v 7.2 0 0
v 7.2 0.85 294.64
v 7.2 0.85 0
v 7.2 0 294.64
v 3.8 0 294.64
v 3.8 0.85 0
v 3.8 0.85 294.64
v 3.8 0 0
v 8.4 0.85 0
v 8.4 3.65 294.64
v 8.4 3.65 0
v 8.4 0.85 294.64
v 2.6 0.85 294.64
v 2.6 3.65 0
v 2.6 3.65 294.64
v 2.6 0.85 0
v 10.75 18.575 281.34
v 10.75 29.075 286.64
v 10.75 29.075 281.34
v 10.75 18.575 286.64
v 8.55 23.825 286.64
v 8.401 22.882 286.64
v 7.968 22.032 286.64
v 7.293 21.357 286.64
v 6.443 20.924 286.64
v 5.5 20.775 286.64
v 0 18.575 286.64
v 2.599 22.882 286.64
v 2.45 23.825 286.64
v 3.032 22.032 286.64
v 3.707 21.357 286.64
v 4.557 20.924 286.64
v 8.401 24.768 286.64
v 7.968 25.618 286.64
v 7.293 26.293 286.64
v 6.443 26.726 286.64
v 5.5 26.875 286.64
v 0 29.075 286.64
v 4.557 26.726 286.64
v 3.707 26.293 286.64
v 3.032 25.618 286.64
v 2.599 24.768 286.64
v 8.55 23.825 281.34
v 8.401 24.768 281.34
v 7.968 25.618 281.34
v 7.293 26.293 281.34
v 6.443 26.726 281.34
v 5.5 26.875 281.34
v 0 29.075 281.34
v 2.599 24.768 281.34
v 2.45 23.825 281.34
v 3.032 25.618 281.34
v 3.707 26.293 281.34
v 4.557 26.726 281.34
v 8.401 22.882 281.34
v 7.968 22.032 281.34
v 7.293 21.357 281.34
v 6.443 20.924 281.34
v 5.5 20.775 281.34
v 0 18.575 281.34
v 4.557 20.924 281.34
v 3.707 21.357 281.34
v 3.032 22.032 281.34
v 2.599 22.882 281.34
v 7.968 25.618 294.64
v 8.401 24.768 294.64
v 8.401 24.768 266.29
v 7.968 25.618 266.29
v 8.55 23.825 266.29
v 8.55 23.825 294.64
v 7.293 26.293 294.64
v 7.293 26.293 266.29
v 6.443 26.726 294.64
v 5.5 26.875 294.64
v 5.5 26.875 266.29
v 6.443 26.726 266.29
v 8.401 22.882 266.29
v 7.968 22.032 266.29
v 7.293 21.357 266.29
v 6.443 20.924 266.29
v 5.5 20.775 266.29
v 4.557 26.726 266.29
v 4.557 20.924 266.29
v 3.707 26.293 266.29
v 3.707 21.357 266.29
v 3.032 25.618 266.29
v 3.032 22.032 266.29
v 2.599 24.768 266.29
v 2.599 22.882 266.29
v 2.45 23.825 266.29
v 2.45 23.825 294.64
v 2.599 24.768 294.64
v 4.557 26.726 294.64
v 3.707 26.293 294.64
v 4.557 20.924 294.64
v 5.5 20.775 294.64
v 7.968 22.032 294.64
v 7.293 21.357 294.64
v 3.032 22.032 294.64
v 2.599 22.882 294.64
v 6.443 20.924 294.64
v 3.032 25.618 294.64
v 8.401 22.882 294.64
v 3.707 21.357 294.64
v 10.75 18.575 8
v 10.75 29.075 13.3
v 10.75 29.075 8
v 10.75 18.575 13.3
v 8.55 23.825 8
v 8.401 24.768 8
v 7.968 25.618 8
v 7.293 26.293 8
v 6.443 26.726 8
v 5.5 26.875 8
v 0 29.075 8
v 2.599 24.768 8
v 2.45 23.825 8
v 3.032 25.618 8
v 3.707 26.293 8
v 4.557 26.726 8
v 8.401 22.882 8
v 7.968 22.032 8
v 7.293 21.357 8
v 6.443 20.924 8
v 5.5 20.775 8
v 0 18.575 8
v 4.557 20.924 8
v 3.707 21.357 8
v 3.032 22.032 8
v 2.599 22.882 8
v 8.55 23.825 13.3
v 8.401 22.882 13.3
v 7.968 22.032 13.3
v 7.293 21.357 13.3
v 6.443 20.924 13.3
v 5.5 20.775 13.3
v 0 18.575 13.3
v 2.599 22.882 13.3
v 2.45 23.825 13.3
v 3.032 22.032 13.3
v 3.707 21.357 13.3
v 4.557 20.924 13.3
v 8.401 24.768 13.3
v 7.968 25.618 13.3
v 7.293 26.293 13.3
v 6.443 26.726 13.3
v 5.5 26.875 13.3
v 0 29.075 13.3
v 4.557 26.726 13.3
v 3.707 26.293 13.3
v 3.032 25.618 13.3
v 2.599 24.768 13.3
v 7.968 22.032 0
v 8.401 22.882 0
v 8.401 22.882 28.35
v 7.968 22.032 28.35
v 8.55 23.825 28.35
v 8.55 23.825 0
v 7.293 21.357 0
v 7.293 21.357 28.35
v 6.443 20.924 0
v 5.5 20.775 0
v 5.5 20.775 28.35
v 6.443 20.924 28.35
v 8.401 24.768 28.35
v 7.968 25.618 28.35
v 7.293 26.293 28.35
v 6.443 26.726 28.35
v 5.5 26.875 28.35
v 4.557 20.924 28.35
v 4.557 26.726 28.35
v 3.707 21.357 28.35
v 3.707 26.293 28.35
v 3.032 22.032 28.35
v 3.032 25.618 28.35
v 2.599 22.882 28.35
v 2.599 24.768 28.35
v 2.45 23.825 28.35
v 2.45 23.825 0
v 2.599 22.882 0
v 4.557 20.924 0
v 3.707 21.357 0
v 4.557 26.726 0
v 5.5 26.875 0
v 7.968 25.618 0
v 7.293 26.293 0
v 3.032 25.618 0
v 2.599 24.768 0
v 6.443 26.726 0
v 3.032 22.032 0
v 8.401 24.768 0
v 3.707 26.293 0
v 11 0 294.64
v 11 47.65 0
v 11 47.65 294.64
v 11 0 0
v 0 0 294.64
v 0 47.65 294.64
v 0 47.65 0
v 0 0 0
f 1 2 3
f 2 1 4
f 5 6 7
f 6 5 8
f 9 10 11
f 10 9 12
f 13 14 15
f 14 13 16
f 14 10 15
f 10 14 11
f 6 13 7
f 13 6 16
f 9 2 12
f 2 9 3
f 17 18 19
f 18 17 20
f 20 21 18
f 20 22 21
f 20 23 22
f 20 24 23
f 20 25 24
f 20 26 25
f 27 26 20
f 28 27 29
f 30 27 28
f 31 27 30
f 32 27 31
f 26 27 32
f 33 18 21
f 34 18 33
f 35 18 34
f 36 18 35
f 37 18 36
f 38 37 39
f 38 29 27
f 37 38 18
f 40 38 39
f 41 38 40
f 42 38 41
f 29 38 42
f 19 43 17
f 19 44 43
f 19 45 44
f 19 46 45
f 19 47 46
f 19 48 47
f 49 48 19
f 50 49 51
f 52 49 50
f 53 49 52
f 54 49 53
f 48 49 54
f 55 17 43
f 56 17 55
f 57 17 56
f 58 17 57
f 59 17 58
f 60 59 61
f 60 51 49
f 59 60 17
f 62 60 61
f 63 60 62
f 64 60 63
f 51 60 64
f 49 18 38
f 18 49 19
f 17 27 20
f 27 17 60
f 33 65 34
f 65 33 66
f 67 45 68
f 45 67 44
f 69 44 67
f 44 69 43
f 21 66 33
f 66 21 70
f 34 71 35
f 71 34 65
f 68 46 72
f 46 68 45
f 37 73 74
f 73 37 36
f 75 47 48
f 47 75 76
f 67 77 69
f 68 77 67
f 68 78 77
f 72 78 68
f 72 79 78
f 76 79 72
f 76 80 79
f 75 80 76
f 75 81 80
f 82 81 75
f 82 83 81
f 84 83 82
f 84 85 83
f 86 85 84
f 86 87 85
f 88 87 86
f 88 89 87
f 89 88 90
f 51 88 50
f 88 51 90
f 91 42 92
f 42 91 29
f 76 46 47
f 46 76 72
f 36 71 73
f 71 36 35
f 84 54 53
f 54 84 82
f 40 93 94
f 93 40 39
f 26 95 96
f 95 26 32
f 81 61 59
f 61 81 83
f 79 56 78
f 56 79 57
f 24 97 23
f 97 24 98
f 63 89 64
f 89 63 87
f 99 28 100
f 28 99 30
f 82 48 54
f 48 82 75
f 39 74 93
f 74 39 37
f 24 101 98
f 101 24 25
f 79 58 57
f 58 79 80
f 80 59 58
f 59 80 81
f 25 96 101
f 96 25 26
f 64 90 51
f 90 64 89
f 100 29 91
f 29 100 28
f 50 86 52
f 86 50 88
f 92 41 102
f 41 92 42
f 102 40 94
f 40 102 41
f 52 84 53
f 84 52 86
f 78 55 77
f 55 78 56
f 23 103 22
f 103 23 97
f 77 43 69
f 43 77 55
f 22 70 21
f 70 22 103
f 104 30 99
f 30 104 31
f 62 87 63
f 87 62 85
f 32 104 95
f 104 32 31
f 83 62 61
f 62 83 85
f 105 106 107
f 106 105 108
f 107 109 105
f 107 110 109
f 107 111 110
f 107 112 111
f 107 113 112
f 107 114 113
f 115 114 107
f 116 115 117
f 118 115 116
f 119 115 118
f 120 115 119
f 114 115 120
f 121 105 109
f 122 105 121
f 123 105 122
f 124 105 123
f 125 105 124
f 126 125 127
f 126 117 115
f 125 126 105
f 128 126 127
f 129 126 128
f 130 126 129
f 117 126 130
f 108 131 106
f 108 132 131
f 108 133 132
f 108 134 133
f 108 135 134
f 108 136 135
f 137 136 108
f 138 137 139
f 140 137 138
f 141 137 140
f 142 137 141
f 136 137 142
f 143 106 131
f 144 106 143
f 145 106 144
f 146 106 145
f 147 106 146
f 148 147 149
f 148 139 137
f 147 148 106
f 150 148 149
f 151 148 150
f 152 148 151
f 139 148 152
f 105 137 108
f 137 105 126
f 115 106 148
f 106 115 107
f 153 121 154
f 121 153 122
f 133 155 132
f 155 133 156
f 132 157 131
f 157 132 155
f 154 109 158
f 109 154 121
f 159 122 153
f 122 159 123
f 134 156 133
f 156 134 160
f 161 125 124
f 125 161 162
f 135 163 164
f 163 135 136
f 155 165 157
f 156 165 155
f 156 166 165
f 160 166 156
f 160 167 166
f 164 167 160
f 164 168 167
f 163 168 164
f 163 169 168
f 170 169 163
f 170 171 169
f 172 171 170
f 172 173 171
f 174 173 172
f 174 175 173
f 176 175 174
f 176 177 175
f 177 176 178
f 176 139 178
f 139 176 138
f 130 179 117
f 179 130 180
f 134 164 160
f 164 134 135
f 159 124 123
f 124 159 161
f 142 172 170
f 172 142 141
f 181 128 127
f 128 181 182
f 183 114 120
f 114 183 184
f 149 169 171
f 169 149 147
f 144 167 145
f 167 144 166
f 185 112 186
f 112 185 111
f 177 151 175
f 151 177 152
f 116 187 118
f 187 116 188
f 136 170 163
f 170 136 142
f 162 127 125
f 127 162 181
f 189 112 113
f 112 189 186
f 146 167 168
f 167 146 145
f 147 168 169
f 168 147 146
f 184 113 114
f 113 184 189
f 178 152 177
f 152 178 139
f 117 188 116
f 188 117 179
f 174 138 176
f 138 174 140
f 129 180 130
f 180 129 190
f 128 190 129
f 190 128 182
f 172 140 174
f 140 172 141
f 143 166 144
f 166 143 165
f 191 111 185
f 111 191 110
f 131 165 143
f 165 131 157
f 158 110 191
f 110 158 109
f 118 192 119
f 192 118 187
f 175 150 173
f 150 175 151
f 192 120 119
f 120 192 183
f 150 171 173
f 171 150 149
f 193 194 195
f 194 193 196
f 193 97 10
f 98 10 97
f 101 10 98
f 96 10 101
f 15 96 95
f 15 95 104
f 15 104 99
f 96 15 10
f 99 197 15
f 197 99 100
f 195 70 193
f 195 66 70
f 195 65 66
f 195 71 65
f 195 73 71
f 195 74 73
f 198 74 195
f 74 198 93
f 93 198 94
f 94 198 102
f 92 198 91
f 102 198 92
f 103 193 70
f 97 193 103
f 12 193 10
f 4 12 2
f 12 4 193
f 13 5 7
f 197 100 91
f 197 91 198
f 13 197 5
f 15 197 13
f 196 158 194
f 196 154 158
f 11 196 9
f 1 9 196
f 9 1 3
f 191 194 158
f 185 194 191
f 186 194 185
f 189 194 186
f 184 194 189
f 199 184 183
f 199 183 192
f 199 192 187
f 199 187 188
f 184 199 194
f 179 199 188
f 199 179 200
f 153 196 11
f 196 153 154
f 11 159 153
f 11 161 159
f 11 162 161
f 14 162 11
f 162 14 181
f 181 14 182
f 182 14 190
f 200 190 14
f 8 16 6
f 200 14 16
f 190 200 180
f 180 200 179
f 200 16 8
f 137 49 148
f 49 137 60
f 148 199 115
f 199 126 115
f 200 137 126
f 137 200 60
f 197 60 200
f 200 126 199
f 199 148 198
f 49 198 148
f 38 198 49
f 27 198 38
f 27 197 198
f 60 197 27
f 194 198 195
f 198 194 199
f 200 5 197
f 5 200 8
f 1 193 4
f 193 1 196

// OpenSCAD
railHp = 58;//the length of a rail in hp
hp = 5.08;//represents of the width in mm of each unit of hp; defaults to Eurorack standard (5.08)

slidingNutHeight = 5.4; //the height of the nut; defaults to the height of a common m3 square nut (5.4)

slidingNutThickness = 2.4; //The thickness/depth of the nut, back to front; defaults to the size of a common m3 square nut (2.4)

slidingNutMargin = .2;//margin added to the thickness of the nut for fit tolerance

railGapHeight = 3.4;//The gap in the rail through which the nuts are visible

railFrontThickness = 2.25; //The thickness of the part of the rail between the front of the rail and the nuts

railBackThickness = 45;//The thickness of the rail "behind" the nuts; thicker is presumably sturdier and less prone to bending; should be thick enough to accommodate more than 2x bracketNutHeight
railHeight = 11;//The overall height of the rail, "top" to "bottom"; should be considerably greater than the bracket nut height

railMargin = 0;//A little extra length to each side of the rail, as needed

bracketNutHeight = 9.8; //The height of the nut securing the rail to the bracket; defaults to common m6 square nut (9.8)
bracketNutThickness = 4.6;//The thickness of the bracket nut; defaults to a common m6 square nut (4.6)
bracketNutInset = 8; //How "deep" into the rail is the nut inset; longer screws will require a greater value
bracketNutMargin =.35;//A margin around the bracket nut for fit tolerance; This nut ought to fit fairly snugly
bracketScrewHoleDiameter = 6.1; //The diameter of the bracket screw; defaults to typical m6 diameter (6.1)

railDepth = railFrontThickness+slidingNutMargin*2+railBackThickness;
railLength = railHp*hp+railMargin*2;

echo("rail depth: ", railDepth);
echo("rail length: ", railLength);

rail();

module rail()
{
    difference()
    {
        railBase();
        translate([railHeight/2,-1,railLength/2-.5]){
            railDiff();
        }   
        
        translate([railHeight/2,railDepth/2,railLength - (bracketNutInset+((bracketNutThickness+bracketNutMargin*2)/2))]){
     bracketNutDiff();
        }
        

translate([railHeight/2,railDepth/2,(bracketNutInset+((bracketNutThickness+bracketNutMargin*2)/2))]){
    rotate([180,0,0]){
     bracketNutDiff();
    }
        }
    }
}

module railBase()
{
    cube([railHeight,railDepth,railLength]);
}

module bracketNutDiff()
{
    bracketNutNotchDepth = (bracketNutHeight+bracketNutMargin*2) - (railHeight -(bracketNutHeight+bracketNutMargin*2));
    
    bracketScrewRad = bracketScrewHoleDiameter/2;
    
    union(){
    cube([bracketNutHeight+bracketNutMargin*2, bracketNutHeight+bracketNutMargin*2, bracketNutThickness+bracketNutMargin*2], center = true);
        translate([0,0,bracketNutThickness/2-20]){
            cylinder(r=bracketScrewRad, h=bracketNutInset+21, $fn=20);
            }
            translate([-((bracketNutHeight+bracketNutMargin*2)+bracketNutNotchDepth)/2-.5,0,0]){
                cube([bracketNutNotchDepth+1,bracketNutHeight+bracketNutMargin*2, bracketNutThickness+bracketNutMargin*2], center=true);
                }
    }
}

module railDiff()
{
    union()
    {
        cube([railGapHeight,railFrontThickness+2,railLength+2], center=true);
        translate([0,railFrontThickness+1,0]){
        cube([slidingNutHeight+slidingNutMargin*2,slidingNutThickness+slidingNutMargin*2,railLength+2],center=true);
        }
    }
}
